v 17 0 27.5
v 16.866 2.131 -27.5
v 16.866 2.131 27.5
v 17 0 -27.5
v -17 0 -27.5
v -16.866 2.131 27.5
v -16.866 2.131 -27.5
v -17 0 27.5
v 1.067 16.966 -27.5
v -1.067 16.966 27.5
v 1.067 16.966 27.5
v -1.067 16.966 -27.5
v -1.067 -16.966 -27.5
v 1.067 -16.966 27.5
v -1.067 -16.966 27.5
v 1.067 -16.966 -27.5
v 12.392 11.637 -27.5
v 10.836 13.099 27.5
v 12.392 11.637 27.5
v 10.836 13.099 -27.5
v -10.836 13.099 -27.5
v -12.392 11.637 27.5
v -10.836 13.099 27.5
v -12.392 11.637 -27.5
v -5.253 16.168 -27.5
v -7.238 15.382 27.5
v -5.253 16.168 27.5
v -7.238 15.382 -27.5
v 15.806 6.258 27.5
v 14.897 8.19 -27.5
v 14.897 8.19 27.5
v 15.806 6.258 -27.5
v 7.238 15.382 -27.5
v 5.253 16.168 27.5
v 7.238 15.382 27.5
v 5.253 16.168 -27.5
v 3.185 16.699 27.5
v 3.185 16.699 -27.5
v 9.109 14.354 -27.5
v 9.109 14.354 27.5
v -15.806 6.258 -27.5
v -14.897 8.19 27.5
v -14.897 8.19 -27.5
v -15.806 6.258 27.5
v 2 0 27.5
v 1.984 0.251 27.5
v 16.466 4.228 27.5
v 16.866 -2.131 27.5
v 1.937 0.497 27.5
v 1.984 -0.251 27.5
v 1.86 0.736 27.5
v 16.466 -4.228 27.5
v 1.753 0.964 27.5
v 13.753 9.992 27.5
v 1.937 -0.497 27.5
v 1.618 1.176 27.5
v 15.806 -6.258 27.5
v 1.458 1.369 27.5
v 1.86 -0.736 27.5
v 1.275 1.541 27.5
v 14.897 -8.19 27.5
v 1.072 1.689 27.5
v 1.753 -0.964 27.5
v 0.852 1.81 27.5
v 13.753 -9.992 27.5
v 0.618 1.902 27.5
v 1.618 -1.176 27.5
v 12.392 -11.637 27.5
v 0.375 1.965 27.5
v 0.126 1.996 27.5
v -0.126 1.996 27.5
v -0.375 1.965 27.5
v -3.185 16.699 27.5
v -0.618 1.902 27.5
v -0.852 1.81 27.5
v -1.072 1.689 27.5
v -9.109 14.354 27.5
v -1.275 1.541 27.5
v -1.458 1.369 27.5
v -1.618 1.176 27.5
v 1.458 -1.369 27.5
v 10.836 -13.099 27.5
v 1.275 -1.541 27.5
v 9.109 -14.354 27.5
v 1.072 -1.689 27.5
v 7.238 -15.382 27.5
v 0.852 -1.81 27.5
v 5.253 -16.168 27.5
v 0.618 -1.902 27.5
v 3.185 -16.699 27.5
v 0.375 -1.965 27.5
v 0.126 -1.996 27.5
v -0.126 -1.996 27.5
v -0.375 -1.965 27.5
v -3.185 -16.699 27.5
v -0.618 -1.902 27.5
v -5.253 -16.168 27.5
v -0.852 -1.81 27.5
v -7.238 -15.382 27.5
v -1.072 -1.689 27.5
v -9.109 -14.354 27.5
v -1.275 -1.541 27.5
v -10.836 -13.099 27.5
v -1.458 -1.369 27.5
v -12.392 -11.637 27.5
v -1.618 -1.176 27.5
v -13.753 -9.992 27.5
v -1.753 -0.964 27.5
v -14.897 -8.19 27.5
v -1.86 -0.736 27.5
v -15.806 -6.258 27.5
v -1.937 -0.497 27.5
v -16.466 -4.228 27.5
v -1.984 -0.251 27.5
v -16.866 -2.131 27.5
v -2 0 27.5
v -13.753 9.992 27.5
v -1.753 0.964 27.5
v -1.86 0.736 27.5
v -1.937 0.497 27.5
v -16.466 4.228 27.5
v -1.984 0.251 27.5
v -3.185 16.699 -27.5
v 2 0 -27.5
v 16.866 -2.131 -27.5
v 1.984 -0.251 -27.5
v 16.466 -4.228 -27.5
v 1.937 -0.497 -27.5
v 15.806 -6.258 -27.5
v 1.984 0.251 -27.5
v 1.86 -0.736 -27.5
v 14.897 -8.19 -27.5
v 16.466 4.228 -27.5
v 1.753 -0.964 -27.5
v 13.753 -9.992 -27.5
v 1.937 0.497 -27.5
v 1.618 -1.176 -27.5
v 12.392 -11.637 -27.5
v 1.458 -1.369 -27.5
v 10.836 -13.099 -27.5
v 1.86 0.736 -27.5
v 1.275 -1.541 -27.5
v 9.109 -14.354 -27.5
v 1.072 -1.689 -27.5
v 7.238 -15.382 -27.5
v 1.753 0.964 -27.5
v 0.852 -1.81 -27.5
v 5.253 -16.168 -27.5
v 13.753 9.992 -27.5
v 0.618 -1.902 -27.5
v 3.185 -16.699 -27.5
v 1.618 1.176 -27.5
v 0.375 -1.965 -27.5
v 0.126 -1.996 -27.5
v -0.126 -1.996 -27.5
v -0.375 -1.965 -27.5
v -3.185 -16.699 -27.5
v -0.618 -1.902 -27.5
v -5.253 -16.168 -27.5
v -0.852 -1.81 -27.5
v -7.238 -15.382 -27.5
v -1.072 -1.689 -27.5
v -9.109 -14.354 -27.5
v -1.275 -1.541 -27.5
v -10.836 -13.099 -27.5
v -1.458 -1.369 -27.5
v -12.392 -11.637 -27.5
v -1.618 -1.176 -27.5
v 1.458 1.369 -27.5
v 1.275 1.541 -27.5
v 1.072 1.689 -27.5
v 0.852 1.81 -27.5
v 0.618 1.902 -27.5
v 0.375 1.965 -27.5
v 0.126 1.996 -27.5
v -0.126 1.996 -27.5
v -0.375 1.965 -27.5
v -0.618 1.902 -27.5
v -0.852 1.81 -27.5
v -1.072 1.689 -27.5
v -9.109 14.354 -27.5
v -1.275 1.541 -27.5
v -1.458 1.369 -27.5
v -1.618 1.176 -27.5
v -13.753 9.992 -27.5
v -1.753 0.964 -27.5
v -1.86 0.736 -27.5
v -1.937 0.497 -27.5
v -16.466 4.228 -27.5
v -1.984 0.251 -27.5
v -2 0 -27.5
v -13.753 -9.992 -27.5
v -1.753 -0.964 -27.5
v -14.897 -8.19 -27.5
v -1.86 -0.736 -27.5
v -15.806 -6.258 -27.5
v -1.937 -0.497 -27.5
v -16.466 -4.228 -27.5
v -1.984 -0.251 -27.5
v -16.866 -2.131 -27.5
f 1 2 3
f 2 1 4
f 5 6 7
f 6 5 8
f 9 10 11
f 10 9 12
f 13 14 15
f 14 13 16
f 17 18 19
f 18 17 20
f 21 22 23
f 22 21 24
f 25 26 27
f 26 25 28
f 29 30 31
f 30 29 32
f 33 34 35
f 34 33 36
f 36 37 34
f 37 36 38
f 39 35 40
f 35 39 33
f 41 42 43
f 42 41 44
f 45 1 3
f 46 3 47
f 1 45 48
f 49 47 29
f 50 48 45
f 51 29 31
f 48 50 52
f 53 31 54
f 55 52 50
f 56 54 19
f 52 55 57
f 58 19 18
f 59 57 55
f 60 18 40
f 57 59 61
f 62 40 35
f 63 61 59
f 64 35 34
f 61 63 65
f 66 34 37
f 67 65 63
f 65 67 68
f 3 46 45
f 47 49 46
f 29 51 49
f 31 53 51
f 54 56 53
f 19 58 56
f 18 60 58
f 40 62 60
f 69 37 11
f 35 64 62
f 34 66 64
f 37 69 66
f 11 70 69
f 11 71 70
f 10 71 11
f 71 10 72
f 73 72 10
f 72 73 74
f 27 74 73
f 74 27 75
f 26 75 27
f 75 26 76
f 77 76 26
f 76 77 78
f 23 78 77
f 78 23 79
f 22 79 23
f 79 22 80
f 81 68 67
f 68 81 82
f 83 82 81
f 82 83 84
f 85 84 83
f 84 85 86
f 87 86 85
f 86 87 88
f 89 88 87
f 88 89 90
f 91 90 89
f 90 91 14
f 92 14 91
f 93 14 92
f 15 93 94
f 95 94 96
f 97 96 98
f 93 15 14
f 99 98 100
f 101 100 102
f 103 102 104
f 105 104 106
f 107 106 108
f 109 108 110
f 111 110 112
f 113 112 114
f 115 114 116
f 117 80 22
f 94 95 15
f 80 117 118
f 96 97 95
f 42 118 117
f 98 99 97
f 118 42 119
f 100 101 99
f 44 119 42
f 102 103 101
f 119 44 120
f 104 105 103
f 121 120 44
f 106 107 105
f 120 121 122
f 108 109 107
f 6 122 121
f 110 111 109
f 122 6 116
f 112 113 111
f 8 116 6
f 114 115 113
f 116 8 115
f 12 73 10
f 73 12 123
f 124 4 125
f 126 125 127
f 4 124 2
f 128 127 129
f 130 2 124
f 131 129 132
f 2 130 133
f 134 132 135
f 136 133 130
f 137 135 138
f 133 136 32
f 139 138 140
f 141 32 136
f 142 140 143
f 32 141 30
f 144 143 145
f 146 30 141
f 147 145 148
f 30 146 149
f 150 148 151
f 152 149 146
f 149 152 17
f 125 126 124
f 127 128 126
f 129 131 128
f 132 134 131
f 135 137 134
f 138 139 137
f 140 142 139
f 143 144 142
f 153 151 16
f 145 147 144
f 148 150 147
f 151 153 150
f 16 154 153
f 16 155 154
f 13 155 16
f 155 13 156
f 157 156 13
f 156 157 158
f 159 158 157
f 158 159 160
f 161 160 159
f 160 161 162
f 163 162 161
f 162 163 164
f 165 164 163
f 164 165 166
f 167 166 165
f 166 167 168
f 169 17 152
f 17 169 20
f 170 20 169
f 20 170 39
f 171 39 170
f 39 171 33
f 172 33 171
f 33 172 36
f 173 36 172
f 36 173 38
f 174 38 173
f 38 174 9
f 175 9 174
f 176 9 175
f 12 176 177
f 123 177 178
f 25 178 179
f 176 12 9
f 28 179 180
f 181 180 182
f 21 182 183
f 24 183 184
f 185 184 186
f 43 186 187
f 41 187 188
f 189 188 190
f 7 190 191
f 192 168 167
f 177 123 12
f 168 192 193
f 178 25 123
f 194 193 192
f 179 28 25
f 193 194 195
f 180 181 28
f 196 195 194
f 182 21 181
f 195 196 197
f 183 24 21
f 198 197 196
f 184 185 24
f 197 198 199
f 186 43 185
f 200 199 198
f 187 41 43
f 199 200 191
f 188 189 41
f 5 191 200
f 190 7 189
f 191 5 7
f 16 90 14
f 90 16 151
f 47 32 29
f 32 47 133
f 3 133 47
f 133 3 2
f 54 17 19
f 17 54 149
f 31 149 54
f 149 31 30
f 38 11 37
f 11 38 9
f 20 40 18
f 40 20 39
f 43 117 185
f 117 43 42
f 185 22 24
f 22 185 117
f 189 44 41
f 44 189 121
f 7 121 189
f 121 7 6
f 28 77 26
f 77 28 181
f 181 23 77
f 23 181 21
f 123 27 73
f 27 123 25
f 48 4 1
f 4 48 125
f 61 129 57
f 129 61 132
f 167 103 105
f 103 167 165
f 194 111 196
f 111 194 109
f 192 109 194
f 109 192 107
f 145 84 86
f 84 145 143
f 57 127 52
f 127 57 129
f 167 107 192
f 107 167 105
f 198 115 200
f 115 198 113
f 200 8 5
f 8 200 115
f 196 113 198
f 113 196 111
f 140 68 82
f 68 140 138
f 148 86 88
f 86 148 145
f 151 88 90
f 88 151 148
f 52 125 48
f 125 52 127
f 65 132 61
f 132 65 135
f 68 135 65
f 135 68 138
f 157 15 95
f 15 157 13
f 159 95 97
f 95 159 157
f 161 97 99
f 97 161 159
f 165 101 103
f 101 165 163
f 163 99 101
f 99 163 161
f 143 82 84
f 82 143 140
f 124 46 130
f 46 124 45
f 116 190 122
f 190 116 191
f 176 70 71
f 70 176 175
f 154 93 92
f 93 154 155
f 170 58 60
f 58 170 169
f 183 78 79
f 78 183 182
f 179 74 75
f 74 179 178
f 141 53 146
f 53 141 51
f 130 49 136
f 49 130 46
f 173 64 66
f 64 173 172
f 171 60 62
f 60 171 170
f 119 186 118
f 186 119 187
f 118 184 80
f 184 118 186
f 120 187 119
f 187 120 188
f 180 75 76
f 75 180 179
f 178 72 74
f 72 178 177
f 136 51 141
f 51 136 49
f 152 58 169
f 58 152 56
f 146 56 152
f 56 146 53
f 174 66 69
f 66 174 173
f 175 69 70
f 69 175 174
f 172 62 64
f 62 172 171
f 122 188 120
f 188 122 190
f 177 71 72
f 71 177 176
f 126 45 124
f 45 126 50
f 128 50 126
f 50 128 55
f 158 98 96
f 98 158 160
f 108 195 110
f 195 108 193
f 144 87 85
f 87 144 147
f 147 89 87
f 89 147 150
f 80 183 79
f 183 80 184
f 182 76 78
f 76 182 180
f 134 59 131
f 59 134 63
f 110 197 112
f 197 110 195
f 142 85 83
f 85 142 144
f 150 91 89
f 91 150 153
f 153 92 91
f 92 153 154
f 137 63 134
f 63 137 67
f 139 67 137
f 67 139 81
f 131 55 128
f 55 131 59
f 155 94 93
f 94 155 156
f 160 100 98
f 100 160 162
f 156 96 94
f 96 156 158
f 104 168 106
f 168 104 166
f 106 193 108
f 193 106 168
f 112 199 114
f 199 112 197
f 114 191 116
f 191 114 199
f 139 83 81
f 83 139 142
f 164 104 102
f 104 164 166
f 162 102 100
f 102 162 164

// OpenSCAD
$fn = 50;


difference() {
	union() {
		translate(v = [0, 0, -27.5000000000]) {
			cylinder(h = 55, r = 17.0000000000);
		}
	}
	union() {
		translate(v = [0, 0, -100.0000000000]) {
			cylinder(h = 200, r = 2.0000000000);
		}
	}
}
